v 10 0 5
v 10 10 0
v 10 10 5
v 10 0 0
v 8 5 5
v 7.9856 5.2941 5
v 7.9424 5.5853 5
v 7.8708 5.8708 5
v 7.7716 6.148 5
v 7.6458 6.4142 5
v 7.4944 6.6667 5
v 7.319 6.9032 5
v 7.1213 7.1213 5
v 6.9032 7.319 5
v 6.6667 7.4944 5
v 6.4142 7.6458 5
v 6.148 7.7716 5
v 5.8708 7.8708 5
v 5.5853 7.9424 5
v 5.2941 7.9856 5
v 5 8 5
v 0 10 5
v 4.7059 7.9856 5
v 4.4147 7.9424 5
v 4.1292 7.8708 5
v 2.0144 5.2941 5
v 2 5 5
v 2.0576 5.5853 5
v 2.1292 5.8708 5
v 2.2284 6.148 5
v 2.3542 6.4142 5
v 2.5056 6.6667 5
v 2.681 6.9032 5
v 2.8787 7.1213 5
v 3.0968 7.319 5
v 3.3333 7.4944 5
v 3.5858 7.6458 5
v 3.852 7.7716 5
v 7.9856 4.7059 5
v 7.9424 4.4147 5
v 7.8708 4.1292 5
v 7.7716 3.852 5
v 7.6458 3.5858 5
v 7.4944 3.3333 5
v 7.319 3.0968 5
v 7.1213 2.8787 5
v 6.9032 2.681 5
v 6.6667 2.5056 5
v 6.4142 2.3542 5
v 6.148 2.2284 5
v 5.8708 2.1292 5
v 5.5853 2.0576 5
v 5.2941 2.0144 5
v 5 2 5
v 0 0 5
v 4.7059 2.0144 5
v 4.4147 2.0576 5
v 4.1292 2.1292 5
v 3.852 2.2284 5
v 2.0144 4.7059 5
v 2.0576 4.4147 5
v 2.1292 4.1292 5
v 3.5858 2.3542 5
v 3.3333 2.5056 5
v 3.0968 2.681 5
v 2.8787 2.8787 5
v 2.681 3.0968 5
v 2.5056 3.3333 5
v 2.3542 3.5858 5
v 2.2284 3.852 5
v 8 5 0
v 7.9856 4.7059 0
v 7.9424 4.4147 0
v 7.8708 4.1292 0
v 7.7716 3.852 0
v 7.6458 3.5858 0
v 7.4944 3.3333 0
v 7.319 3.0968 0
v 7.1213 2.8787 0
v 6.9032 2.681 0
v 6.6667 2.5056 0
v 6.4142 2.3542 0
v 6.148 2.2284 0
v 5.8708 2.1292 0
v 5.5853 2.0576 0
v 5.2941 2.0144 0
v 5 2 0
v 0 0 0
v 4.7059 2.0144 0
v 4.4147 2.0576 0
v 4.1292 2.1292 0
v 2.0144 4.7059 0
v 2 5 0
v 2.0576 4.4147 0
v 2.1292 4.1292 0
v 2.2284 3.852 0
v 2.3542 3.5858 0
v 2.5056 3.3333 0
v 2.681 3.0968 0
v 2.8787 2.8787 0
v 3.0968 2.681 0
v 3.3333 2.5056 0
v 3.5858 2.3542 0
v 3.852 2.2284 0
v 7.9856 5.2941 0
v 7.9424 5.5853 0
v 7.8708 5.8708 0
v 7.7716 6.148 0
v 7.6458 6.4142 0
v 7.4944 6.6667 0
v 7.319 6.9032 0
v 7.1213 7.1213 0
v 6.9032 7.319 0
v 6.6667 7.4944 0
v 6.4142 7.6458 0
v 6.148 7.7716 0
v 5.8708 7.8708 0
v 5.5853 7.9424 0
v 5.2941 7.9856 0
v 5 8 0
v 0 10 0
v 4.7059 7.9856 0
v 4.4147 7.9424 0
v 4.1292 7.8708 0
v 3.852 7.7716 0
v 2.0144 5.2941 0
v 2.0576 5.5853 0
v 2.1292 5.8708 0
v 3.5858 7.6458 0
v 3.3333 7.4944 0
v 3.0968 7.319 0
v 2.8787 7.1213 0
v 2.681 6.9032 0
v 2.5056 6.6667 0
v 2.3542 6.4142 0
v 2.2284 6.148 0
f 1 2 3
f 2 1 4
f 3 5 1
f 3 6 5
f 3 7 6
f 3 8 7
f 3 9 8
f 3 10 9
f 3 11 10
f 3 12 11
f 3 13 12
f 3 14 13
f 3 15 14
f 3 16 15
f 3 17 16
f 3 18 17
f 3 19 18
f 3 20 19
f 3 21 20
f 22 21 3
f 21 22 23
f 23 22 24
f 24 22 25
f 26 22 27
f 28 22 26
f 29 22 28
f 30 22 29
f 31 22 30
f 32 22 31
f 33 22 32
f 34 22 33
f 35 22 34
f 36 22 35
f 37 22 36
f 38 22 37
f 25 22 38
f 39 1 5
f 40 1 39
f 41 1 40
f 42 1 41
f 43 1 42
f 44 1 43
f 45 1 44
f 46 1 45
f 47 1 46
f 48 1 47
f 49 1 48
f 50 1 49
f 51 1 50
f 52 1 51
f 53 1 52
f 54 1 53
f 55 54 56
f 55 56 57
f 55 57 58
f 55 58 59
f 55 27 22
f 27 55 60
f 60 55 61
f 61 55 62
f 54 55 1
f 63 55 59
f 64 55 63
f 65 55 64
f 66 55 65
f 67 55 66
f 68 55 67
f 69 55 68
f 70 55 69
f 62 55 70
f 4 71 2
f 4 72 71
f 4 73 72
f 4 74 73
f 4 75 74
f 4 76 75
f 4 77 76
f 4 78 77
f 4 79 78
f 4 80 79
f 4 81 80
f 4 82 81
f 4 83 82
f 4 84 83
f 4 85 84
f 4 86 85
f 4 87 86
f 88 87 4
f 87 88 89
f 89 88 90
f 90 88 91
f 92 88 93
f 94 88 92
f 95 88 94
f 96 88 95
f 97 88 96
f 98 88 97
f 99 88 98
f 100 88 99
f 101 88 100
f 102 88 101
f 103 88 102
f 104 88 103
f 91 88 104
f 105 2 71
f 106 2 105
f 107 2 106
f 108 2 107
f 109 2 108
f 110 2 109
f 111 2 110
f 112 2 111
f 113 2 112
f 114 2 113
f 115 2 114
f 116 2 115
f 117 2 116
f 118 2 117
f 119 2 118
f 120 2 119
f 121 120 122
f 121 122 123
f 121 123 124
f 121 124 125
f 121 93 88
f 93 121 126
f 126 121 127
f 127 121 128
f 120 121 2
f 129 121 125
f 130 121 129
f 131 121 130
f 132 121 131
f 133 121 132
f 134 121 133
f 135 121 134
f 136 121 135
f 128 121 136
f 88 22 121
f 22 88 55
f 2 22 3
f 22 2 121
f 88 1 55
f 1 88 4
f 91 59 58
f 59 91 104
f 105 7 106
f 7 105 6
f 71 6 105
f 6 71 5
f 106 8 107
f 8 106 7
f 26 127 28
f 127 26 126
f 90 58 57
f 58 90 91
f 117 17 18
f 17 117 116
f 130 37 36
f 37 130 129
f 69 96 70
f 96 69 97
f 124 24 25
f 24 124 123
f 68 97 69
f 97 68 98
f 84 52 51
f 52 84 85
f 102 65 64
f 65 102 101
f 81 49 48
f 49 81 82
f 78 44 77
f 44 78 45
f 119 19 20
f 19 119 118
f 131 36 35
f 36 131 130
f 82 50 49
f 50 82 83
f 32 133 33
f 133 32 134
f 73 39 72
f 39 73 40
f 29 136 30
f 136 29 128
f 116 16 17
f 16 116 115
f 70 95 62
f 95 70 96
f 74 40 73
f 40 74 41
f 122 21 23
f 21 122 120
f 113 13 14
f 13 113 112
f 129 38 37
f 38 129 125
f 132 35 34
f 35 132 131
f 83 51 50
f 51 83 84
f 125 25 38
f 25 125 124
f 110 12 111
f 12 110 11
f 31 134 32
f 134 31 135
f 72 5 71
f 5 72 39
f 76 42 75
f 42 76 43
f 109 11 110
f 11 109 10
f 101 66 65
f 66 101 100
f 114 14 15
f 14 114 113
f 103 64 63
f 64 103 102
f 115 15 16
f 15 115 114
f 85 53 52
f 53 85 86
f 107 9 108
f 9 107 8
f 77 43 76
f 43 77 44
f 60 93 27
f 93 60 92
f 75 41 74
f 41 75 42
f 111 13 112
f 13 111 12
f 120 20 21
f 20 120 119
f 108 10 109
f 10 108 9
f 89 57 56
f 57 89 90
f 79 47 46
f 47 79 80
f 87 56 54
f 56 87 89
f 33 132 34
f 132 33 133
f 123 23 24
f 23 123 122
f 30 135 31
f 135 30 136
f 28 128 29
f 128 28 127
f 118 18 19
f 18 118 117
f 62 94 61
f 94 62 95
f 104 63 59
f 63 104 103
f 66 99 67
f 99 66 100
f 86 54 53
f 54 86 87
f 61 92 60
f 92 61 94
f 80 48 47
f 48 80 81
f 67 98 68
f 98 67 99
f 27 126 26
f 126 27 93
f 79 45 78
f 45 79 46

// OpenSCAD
// file: lib/constants.scad
//
// Global constants for all parts
//
// (C) 2019 Johannes Ernst.
// License: see package.
//

$version = "stacky-v1"; // version identifier to be etched into parts

$fn = 64;         // smoothness

$dx_unit = 10;    // main grid unit in x direction
$dy_unit = 10;    // main grid unit in y direction
$dz_unit = 10;    // main grid unit in z direction

$r1 = 3;          // peg radius
$r2 = 5;          // radius of the end of taper of peg

$play = 0.02;     // gap between surface and nominal location so that
                  // it can move against another surface at the same
                  // nominal location
$play2 = 2*$play; // convenience constant

$eps = 0.002;     // add this to avoid numeric almost-equals
$eps2 = 2*$eps;   // convenience constant
// file: lib/foot_A.scad
//
// Foot for Board "A" template
//
// (C) 2019 Johannes Ernst.
// License: see package.
//

include <constants.scad>

module foot_A( hu ) {
    h = $dz_unit * hu;

    difference() {
        cube( [ $dx_unit, $dy_unit, h ] );

        translate( [ $dx_unit/2, $dy_unit/2, -$eps ] ) {
            cylinder( r = $r1, h = h + 2*$eps );
        };
    }
};
// main file
//
// Stacky Foot for Board "A" 0.5cm
//
// (C) 2019 Johannes Ernst.
// License: see package.
//

include <lib/foot_A.scad>

foot_A( 0.5 );
